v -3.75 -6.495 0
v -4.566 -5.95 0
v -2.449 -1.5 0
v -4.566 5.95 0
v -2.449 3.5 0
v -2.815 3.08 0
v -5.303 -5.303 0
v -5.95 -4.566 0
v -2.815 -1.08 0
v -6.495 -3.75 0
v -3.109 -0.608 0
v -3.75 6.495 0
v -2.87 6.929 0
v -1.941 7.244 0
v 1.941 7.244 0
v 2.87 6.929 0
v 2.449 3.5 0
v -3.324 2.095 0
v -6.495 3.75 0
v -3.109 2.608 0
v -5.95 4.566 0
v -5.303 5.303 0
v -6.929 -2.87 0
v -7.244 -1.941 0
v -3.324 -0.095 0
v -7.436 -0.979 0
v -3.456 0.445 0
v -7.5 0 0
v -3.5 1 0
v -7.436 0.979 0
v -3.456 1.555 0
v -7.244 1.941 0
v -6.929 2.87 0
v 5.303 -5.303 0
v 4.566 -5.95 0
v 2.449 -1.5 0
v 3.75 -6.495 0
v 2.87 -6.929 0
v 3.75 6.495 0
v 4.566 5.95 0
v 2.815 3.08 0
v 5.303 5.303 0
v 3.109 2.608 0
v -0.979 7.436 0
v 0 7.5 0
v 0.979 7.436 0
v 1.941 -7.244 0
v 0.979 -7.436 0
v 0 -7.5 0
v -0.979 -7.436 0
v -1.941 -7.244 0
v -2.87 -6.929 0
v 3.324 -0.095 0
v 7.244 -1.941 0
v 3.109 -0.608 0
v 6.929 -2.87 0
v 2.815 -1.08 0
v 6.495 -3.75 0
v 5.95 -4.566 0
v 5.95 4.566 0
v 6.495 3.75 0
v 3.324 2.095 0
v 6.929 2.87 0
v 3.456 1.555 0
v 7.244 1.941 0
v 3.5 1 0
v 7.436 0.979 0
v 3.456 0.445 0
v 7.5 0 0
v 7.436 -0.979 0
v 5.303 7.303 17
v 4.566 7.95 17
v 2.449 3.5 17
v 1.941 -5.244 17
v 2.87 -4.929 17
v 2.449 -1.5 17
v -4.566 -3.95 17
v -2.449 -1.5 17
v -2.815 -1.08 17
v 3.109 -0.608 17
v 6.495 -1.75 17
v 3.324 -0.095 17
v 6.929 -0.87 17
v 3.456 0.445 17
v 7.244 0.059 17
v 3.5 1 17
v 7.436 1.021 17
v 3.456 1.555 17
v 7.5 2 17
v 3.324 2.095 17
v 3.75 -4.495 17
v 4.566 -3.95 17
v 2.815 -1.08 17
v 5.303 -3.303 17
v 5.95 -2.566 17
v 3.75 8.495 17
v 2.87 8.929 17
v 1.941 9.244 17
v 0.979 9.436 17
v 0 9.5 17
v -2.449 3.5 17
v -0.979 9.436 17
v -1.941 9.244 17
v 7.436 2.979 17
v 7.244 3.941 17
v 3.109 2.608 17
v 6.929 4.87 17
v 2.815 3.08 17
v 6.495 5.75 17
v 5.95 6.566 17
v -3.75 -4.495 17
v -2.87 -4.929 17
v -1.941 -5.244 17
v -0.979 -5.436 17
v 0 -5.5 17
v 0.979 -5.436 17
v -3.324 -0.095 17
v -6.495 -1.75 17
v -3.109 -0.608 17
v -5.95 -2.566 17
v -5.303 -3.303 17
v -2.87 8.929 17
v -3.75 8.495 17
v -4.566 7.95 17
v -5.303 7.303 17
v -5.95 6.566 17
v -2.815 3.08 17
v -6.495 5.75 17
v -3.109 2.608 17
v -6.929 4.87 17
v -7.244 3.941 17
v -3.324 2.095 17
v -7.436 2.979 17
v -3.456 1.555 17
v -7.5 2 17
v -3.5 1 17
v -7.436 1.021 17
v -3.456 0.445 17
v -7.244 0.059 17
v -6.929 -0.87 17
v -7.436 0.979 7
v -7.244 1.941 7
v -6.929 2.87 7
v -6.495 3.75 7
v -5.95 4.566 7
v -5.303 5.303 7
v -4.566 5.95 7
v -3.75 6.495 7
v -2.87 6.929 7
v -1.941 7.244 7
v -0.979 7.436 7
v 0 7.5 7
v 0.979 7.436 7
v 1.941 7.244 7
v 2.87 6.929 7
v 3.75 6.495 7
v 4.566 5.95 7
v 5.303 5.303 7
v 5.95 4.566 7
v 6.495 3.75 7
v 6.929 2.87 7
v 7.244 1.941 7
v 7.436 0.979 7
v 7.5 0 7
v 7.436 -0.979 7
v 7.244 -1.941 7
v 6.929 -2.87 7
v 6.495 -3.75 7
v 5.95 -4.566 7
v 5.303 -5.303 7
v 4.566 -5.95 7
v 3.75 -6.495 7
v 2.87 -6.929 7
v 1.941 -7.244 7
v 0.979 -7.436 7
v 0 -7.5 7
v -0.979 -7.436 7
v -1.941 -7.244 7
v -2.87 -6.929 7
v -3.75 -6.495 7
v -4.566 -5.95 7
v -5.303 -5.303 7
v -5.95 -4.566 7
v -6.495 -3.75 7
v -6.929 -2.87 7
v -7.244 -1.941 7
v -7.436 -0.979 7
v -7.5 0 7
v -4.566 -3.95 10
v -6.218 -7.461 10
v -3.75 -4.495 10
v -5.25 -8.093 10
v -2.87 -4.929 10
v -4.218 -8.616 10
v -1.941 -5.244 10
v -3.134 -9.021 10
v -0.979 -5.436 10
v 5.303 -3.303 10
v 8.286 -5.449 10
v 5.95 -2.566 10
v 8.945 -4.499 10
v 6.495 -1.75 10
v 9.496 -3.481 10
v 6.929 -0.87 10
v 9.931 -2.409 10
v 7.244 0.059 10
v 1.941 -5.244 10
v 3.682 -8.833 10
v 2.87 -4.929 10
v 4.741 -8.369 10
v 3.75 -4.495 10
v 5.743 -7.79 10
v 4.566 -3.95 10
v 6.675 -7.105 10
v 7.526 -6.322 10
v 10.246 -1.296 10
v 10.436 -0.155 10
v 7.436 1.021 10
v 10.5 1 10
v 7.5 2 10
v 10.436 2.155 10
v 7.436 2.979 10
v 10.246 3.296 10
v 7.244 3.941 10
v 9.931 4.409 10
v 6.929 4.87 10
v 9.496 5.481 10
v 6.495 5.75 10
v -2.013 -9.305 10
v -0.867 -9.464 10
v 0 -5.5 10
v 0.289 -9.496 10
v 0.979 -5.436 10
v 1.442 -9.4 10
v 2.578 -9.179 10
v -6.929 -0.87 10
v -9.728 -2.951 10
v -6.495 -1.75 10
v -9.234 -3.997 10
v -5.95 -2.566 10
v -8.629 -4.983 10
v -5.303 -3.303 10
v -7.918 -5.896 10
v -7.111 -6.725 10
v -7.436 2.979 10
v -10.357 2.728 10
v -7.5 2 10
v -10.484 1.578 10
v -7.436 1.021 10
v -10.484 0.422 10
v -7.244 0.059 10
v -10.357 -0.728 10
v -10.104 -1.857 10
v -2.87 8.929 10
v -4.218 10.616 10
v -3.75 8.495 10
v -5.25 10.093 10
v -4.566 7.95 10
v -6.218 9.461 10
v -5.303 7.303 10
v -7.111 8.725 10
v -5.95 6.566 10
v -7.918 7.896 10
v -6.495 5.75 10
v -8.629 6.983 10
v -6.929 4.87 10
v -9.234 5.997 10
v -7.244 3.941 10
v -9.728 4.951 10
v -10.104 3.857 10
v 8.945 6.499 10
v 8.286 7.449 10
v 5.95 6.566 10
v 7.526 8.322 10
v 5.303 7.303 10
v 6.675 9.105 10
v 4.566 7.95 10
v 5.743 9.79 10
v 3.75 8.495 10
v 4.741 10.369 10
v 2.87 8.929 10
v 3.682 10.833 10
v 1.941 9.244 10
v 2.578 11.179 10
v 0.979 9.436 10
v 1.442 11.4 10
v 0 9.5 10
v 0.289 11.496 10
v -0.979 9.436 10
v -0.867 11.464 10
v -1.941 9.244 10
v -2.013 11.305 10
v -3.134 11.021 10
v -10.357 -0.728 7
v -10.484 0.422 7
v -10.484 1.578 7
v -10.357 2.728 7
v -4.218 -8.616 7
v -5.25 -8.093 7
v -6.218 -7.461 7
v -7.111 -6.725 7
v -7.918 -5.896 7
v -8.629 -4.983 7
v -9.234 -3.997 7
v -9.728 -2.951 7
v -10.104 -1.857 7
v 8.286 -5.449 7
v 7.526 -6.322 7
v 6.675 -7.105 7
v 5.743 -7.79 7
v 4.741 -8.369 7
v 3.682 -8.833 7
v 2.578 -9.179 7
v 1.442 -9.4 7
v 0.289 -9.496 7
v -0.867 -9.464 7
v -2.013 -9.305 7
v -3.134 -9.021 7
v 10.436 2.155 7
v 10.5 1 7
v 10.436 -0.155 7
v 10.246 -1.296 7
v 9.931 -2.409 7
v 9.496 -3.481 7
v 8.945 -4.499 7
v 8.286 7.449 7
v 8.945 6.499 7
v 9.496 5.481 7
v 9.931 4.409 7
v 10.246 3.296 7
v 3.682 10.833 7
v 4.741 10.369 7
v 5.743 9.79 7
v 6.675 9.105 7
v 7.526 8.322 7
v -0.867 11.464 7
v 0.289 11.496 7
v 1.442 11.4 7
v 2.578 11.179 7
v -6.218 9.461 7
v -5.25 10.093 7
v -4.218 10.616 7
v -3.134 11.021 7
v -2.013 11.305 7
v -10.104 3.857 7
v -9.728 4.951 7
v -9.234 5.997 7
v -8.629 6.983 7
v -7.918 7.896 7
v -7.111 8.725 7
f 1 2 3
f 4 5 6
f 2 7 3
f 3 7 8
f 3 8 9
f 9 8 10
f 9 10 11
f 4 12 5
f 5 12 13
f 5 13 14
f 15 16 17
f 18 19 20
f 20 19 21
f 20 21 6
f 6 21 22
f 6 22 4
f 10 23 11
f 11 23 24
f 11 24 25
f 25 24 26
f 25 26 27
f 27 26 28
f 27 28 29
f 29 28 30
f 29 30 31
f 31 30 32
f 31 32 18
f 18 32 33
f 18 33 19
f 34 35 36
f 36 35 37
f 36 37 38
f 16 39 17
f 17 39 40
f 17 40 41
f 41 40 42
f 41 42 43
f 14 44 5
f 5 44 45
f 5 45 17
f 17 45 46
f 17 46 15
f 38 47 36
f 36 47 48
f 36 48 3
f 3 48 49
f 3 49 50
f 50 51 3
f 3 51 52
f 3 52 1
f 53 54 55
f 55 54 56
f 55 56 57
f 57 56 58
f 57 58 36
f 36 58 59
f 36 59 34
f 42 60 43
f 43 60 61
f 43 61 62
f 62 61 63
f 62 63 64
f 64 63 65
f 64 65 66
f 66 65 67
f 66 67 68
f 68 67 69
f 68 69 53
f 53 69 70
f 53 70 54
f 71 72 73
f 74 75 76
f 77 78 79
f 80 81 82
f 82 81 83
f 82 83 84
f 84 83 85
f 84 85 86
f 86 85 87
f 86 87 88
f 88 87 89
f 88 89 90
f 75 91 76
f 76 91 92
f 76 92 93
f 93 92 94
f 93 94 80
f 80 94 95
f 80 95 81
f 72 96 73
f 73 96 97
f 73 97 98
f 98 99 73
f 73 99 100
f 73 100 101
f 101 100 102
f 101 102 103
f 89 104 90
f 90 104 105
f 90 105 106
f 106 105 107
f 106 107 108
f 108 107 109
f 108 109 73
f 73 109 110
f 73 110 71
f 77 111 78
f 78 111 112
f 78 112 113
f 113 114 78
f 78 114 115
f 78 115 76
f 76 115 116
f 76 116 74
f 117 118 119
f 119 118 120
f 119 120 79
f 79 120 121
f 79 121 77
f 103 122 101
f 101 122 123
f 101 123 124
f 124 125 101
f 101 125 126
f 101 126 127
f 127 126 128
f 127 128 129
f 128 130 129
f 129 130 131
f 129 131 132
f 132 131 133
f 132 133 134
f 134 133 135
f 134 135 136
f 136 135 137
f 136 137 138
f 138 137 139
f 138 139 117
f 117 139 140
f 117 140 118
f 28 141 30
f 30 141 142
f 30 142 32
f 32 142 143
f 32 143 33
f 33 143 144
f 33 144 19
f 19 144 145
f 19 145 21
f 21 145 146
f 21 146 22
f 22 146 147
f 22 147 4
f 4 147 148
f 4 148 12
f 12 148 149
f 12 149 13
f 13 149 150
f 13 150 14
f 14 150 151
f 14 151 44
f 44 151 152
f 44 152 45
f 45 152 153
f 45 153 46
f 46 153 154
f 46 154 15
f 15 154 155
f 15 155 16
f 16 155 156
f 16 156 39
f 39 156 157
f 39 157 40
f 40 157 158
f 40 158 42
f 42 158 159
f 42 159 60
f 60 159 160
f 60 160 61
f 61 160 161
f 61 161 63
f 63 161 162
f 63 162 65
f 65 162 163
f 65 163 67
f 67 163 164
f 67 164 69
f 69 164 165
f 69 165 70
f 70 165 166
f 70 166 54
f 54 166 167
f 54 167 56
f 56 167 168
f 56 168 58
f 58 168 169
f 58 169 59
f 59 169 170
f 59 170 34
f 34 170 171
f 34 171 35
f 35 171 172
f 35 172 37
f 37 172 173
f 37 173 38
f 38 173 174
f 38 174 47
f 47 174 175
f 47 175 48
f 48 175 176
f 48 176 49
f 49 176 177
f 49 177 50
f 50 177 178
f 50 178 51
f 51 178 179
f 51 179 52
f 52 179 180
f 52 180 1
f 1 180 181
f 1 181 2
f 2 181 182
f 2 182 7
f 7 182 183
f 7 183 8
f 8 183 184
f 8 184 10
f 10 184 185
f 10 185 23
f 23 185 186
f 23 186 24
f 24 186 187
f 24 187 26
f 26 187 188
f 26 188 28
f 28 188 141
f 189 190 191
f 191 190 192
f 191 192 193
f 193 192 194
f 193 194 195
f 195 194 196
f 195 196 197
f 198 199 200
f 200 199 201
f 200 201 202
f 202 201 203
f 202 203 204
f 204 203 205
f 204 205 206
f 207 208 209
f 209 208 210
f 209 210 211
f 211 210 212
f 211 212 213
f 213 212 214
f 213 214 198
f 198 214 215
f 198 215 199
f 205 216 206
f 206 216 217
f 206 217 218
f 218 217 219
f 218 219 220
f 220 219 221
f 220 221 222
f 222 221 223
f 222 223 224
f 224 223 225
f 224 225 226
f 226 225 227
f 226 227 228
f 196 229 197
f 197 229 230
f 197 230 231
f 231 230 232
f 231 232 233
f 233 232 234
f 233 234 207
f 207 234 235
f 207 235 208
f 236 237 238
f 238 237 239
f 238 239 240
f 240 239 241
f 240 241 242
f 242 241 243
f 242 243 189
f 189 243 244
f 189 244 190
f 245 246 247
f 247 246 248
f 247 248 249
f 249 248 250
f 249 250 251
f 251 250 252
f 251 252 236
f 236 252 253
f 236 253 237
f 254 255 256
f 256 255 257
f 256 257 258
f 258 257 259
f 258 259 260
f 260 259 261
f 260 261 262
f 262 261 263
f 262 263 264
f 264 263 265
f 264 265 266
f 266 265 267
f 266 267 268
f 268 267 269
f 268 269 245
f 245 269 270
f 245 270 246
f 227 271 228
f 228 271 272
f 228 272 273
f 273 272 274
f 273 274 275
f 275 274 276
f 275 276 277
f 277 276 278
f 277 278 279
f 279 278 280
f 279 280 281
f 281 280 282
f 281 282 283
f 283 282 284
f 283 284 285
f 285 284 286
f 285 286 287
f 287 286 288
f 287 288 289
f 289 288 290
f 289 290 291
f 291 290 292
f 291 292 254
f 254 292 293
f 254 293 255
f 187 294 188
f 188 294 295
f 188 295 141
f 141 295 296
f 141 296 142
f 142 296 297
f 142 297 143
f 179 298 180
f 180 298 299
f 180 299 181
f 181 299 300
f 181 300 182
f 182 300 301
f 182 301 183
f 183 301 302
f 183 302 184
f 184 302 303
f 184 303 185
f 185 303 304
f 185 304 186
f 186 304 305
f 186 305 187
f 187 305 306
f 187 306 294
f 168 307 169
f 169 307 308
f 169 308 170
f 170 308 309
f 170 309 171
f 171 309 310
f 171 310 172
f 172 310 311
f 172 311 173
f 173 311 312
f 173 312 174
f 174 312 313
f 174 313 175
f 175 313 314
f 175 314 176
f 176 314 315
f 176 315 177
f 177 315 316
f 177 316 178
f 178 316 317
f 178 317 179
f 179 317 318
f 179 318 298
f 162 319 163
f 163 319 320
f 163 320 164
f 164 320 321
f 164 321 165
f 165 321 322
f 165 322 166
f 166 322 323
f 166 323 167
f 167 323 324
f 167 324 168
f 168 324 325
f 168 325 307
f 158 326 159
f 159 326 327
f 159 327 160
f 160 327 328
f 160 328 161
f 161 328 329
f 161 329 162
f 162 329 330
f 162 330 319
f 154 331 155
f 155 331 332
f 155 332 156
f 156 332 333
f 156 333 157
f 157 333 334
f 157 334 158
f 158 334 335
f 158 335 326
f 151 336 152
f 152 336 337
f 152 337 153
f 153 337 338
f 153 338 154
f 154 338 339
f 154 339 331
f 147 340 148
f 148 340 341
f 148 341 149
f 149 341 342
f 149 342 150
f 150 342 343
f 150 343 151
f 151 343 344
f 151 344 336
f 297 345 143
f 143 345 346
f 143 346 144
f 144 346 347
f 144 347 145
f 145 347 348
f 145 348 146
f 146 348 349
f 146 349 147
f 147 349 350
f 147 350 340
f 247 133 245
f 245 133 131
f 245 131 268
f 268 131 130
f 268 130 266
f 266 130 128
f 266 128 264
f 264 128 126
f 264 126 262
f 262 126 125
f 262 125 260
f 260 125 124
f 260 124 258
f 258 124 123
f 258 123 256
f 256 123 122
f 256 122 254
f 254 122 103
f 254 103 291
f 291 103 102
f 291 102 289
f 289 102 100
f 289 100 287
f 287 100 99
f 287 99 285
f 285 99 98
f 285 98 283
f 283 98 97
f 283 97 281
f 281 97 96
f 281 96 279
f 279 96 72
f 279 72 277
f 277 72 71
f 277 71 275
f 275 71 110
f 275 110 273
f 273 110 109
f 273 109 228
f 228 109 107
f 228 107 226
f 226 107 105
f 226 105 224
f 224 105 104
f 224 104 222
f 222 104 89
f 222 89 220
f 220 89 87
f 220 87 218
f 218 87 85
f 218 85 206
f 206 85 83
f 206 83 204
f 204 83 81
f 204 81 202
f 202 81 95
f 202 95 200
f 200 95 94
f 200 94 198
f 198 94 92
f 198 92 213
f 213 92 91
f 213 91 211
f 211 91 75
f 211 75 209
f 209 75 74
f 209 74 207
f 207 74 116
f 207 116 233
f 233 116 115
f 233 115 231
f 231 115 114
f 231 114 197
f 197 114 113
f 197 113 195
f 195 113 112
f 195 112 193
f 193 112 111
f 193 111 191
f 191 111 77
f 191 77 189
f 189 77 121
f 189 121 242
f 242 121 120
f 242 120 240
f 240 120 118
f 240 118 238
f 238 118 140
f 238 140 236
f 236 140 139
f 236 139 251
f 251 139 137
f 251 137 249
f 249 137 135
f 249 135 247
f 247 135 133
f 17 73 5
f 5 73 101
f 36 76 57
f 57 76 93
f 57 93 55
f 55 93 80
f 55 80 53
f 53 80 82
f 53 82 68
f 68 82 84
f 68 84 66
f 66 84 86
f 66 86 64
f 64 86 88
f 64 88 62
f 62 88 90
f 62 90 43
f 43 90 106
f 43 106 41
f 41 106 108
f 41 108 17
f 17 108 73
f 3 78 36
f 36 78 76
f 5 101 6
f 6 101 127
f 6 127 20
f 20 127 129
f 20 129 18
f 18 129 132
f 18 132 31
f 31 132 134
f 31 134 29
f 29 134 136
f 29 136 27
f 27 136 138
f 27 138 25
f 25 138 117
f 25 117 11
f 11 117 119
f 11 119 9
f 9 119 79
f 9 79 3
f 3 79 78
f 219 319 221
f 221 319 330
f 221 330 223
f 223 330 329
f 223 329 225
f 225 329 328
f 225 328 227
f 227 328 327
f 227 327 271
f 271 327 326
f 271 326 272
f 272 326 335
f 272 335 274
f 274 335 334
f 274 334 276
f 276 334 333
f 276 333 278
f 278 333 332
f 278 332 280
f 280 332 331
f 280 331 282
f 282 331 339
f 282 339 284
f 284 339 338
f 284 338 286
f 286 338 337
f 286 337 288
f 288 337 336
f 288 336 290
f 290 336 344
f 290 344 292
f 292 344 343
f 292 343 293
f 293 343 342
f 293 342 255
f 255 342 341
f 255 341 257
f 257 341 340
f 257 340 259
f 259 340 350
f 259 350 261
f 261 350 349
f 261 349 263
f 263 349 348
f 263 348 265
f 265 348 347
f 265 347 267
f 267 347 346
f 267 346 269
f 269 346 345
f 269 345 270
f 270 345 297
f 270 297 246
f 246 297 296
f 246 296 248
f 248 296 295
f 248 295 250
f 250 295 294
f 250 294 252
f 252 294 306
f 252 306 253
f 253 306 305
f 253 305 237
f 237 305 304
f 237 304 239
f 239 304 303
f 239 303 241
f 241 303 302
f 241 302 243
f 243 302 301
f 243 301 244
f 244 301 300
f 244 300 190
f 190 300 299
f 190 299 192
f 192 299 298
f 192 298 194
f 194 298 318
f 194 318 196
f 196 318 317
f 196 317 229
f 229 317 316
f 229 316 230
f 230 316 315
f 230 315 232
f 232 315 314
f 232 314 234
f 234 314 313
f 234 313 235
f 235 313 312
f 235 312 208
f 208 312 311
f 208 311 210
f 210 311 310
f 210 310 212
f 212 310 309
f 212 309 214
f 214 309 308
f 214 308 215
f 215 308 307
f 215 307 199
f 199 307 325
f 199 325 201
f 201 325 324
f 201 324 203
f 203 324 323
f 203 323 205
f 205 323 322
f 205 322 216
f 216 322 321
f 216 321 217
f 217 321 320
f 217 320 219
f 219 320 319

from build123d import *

# Parameters (mm, degrees)
SKETCH1_R               = 7.5
BOSS_EXTRUDE1_DEPTH     = 7
SKETCH2_R               = 8.5
BOSS_EXTRUDE2_DEPTH     = 3
SKETCH3_R               = 7.5
BOSS_EXTRUDE3_DEPTH     = 7
CUT_EXTRUDE3_DEPTH      = 8
CUT_EXTRUDE3_DEPTH_BACK = 11
SKETCH7_R               = 10.5
SKETCH7_R_2             = 8.5
BOSS_EXTRUDE4_DEPTH     = 3


with BuildPart() as part:
    # Sketch1 → Boss-Extrude1 (new body)
    with BuildSketch(Plane.XY):
        Circle(SKETCH1_R)
    extrude(amount=BOSS_EXTRUDE1_DEPTH)

    # Sketch2 → Boss-Extrude2 (add)
    with BuildSketch(Plane.XY.offset(7)):
        with Locations((0, 1)):
            Circle(SKETCH2_R)
    extrude(amount=BOSS_EXTRUDE2_DEPTH)

    # Sketch3 → Boss-Extrude3 (add)
    with BuildSketch(Plane.XY.offset(10)):
        with Locations((0, 2)):
            Circle(SKETCH3_R)
    extrude(amount=BOSS_EXTRUDE3_DEPTH)

    # Sketch6 → Cut-Extrude3 (cut, two sides)
    with BuildSketch(Plane.XY.offset(10)) as cut_extrude3_sk:
        with BuildLine():
            Line((-2.449489743, 3.5), (2.449489743, 3.5))
            ThreePointArc((2.449489743, 3.5), (3.5, 1), (2.449489743, -1.5))
            Line((2.449489743, -1.5), (-2.449489743, -1.5))
            ThreePointArc((-2.449489743, -1.5), (-3.5, 1), (-2.449489743, 3.5))
        make_face()
    extrude(amount=CUT_EXTRUDE3_DEPTH, mode=Mode.SUBTRACT)
    extrude(cut_extrude3_sk.sketch, amount=-CUT_EXTRUDE3_DEPTH_BACK, mode=Mode.SUBTRACT)

    # Sketch7 → Boss-Extrude4 (add)
    with BuildSketch(Plane.XY.offset(10)):
        with Locations((0, 1)):
            Circle(SKETCH7_R)
        with Locations((0, 1)):
            Circle(SKETCH7_R_2, mode=Mode.SUBTRACT)
    extrude(amount=-BOSS_EXTRUDE4_DEPTH)


solid = part.part
